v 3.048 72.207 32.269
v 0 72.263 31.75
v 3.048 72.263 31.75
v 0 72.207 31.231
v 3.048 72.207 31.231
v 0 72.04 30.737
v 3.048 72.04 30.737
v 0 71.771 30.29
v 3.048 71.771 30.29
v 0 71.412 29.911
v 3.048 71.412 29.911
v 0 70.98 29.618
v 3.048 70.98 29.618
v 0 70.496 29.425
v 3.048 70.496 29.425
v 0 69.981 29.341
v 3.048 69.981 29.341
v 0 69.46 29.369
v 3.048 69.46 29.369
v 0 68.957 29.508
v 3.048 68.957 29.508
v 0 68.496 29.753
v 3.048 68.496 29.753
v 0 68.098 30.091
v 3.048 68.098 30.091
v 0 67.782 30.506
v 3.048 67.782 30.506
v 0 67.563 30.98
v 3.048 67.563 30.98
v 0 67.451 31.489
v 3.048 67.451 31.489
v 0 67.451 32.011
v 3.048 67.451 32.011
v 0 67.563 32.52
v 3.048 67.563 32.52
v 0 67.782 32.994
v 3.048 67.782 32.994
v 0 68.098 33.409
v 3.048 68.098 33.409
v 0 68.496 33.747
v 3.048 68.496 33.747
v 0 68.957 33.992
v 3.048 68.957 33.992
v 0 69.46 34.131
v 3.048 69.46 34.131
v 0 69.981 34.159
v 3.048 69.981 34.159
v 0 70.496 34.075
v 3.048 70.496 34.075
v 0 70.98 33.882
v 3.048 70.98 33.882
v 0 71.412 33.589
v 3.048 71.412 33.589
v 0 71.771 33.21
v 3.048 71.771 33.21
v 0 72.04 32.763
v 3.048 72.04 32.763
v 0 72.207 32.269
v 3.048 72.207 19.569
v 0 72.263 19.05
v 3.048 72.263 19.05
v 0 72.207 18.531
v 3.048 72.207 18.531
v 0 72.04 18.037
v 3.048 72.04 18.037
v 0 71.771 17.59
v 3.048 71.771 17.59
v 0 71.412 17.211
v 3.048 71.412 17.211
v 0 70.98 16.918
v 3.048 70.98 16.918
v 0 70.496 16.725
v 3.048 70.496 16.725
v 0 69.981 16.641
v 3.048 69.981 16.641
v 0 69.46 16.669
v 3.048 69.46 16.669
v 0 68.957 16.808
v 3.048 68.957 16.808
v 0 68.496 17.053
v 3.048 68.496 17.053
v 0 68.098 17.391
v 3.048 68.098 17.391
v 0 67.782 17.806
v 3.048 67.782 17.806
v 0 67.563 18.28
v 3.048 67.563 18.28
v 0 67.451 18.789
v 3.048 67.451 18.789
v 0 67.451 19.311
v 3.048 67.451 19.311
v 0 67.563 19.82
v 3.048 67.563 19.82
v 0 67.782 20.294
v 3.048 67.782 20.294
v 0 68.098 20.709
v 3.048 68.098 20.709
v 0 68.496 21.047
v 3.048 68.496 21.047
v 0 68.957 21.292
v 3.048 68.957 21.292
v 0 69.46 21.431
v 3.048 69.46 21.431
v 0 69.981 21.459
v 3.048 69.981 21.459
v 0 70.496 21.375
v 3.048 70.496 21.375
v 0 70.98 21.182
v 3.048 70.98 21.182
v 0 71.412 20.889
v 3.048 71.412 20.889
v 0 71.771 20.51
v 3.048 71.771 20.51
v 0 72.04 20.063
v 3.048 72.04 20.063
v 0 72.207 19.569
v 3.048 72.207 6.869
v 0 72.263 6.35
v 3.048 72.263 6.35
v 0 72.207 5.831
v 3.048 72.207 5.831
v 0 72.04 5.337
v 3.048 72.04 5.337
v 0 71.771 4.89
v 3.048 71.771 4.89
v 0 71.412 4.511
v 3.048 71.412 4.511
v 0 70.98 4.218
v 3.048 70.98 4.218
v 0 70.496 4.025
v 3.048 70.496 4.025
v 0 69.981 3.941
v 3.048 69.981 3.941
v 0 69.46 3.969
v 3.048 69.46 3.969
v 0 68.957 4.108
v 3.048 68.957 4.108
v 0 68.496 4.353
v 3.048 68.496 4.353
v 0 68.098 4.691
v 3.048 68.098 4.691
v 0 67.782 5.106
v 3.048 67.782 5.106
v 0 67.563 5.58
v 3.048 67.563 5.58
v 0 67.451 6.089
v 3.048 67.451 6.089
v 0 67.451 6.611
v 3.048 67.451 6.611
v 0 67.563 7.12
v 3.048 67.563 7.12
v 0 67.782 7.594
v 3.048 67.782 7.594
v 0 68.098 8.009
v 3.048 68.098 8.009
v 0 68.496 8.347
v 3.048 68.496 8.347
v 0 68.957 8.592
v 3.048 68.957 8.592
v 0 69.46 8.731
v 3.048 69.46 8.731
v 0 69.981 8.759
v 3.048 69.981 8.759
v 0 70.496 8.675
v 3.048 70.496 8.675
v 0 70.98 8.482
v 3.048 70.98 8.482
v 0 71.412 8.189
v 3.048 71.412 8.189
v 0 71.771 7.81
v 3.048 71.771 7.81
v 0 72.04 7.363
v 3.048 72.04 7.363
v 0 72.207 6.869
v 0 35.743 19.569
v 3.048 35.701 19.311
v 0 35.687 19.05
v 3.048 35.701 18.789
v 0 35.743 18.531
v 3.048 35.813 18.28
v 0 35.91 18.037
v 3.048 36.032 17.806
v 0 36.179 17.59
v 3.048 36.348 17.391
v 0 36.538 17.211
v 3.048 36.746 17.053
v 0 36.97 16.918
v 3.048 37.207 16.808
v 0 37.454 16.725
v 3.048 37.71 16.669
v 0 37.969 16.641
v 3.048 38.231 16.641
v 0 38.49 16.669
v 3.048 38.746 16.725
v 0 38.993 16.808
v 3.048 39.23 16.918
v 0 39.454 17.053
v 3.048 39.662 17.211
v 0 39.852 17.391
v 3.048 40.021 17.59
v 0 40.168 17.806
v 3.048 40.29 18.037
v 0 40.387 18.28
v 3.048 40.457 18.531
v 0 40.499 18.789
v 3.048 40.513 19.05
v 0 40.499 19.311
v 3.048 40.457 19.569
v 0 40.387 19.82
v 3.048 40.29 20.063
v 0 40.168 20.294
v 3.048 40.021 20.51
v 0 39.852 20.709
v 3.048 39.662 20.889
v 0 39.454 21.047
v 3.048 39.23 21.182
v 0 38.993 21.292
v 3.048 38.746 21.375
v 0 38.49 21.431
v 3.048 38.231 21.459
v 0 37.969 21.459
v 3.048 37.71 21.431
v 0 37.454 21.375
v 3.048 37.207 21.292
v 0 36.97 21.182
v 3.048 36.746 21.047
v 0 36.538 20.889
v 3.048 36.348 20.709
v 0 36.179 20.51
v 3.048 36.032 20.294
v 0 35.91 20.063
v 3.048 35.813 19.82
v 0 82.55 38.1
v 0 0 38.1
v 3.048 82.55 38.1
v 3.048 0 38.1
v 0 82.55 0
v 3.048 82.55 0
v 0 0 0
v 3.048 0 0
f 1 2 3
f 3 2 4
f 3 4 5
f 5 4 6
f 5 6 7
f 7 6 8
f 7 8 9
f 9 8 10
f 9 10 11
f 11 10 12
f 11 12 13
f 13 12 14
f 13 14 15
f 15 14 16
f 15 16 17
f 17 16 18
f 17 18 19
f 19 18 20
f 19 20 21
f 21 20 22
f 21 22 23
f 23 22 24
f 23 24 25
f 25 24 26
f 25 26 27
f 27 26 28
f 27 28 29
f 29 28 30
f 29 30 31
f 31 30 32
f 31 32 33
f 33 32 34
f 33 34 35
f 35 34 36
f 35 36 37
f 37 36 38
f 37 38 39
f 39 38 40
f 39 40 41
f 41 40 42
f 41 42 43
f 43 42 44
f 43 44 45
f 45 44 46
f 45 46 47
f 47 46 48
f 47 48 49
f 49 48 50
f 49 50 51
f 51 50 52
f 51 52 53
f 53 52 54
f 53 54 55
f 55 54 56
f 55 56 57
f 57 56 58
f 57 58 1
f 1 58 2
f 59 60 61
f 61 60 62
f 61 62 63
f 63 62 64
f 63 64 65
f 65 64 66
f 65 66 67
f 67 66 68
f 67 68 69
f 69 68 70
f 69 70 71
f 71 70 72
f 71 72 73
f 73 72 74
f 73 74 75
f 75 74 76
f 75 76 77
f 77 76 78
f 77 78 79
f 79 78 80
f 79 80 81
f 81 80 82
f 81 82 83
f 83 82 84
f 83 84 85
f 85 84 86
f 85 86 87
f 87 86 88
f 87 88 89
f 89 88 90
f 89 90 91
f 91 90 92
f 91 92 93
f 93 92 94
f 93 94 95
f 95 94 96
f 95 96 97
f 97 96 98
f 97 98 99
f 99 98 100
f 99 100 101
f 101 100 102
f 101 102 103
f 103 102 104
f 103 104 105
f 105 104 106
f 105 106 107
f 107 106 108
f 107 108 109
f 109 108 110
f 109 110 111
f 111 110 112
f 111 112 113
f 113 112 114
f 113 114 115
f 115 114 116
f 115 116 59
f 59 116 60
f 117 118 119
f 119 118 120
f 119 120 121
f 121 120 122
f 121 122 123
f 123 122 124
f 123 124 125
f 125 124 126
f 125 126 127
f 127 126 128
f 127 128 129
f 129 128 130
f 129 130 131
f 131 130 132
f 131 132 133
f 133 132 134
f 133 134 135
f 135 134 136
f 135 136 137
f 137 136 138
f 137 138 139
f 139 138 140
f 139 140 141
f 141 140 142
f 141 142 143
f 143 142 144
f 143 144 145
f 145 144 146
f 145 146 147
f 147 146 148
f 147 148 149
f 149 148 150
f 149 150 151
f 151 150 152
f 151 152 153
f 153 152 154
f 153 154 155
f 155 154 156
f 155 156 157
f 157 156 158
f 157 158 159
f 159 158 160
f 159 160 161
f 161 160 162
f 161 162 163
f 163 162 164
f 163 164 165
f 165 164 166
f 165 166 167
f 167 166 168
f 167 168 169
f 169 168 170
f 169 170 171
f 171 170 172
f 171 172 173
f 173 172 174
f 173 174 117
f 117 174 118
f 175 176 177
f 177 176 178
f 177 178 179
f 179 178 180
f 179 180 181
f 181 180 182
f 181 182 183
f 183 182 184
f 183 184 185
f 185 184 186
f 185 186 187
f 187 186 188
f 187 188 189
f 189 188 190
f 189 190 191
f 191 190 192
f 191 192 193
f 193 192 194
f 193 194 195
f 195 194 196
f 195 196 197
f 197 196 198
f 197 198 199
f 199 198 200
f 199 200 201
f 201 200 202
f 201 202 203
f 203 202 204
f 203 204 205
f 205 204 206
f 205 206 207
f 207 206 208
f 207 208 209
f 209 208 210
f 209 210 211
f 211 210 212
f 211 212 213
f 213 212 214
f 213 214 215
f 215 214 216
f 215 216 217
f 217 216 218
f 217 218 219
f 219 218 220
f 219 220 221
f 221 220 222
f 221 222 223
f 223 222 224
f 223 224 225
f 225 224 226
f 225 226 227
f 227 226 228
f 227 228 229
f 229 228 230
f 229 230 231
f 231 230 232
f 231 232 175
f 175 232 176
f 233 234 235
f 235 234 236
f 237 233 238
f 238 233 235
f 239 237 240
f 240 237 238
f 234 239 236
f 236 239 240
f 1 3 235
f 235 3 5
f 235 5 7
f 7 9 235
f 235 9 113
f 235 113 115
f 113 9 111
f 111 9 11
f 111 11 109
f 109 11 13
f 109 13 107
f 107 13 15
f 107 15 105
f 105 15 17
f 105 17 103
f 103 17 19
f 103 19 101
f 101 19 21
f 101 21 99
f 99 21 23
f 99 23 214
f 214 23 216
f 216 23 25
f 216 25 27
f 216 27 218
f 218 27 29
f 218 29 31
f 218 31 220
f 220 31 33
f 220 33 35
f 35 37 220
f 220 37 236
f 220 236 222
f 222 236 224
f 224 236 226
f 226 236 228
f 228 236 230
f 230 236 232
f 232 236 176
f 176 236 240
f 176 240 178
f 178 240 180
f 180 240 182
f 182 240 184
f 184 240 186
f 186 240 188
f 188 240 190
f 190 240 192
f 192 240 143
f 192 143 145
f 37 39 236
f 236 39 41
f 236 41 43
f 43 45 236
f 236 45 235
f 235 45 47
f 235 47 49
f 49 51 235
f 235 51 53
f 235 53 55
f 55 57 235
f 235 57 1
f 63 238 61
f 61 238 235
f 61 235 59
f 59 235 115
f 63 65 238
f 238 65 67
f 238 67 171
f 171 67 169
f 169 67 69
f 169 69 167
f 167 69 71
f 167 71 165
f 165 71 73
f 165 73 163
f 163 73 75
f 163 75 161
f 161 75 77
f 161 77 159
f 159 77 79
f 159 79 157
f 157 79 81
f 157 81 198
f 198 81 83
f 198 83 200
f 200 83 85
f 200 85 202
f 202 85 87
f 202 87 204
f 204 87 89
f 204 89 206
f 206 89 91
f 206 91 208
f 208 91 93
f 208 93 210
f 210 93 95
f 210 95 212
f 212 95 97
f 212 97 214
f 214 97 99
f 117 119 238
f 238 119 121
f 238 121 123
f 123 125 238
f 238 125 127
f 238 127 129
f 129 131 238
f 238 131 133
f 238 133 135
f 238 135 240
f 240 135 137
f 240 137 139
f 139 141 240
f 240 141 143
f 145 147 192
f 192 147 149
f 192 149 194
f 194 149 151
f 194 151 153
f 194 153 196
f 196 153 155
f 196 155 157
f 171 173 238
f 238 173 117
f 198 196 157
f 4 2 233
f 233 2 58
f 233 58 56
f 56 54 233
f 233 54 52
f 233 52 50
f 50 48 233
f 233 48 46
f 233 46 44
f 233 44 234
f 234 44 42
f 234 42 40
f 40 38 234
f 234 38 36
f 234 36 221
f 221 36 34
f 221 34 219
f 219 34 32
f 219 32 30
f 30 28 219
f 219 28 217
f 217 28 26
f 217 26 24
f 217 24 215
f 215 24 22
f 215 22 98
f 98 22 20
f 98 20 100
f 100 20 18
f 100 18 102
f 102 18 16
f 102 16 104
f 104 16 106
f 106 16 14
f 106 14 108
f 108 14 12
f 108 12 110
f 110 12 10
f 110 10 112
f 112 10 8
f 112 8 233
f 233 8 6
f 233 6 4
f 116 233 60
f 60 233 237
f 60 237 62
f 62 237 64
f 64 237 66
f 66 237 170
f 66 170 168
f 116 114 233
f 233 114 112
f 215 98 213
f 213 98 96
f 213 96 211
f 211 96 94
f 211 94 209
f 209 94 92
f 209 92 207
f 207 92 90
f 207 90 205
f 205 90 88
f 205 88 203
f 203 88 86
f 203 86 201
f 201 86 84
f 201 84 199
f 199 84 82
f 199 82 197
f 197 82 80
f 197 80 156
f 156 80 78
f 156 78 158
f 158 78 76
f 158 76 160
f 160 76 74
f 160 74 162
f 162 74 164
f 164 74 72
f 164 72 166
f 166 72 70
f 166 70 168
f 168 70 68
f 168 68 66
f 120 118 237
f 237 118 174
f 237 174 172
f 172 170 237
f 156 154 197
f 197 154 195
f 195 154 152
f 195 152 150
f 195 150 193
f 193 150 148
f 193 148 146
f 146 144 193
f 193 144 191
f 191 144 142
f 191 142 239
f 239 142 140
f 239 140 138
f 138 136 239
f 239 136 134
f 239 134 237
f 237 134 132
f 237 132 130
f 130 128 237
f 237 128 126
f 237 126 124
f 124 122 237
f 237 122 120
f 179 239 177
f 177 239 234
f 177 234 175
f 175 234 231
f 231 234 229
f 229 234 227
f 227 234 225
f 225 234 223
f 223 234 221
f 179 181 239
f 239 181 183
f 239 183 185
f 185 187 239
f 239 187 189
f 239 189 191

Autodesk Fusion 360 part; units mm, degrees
sketch "Sketch1" plane through (0, 0, 0) normal (1, 0, 0) x (0, 1, 0)
  line L0 (0, 0) -> (82.55, 0)
  line L1 (82.55, 0) -> (82.55, 38.1)
  line L2 (82.55, 38.1) -> (0, 38.1)
  line L3 (0, 38.1) -> (0, 0)
  dimension "d1" = 82.55
  dimension "d2" = 38.1
extrude "Extrude1" add sketch "Sketch1" along normal blind 3.048
sketch "Sketch2" plane through (3.048, 0, 0) normal (1, 0, 0) x (0, 1, 0)
  line L0 (0, 38.1) -> (0, 0)
  line L1 (0, 0) -> (82.55, 0)
  line L2 (82.55, 0) -> (82.55, 38.1)
  line L3 (82.55, 38.1) -> (0, 38.1)
  line L4 (0, 0) -> (38.1, 0)
  line L5 (38.1, 0) -> (38.1, 19.05)
  line L6 (38.1, 19.05) -> (0, 19.05)
  line L7 (0, 19.05) -> (0, 0)
  dimension "d5" = 38.1
  dimension "d6" = 19.05
hole "Hole1" at (3.048, 38.1, 19.05) direction (-1, 0, 0) diameter 4.826 depth 9.652 tip angle 118
sketch "Sketch3" plane through (3.048, 0, 0) normal (1, 0, 0) x (0, 1, 0)
  circle A0 centre (38.1, 19.05) radius 2.413
  line L0 (0, 38.1) -> (0, 0)
  line L1 (0, 0) -> (82.55, 0)
  line L2 (82.55, 0) -> (82.55, 38.1)
  line L3 (82.55, 38.1) -> (0, 38.1)
  line L4 (82.55, 0) -> (69.85, 0)
  line L5 (69.85, 0) -> (69.85, 6.35)
  line L6 (69.85, 6.35) -> (82.55, 6.35)
  line L7 (82.55, 6.35) -> (82.55, 0)
  dimension "d10" = 12.7
  dimension "d11" = 6.35
hole "Hole2" at (3.048, 69.85, 6.35) direction (-1, 0, 0) diameter 4.826 depth 3.048 tip angle 118
sketch "Sketch4" plane through (3.048, 0, 0) normal (1, 0, 0) x (0, 1, 0)
  circle A0 centre (69.85, 6.35) radius 2.413
  circle A1 centre (38.1, 19.05) radius 2.413
  line L0 (0, 38.1) -> (0, 0)
  line L1 (0, 0) -> (82.55, 0)
  line L2 (82.55, 0) -> (82.55, 38.1)
  line L3 (82.55, 38.1) -> (0, 38.1)
  line L4 (82.55, 0) -> (69.85, 0)
  line L5 (69.85, 0) -> (69.85, 19.05)
  line L6 (69.85, 19.05) -> (82.55, 19.05)
  line L7 (82.55, 19.05) -> (82.55, 0)
  dimension "d15" = 12.7
  dimension "d16" = 19.05
hole "Hole3" at (3.048, 69.85, 19.05) direction (-1, 0, 0) diameter 4.826 depth 3.048 tip angle 118
sketch "Sketch5" plane through (3.048, 0, 0) normal (1, 0, 0) x (0, 1, 0)
  circle A0 centre (69.85, 19.05) radius 2.413
  circle A1 centre (69.85, 6.35) radius 2.413
  circle A2 centre (38.1, 19.05) radius 2.413
  line L0 (0, 38.1) -> (0, 0)
  line L1 (0, 0) -> (82.55, 0)
  line L2 (82.55, 0) -> (82.55, 38.1)
  line L3 (82.55, 38.1) -> (0, 38.1)
  line L4 (82.55, 0) -> (69.85, 0)
  line L5 (69.85, 0) -> (69.85, 31.75)
  line L6 (69.85, 31.75) -> (82.55, 31.75)
  line L7 (82.55, 31.75) -> (82.55, 0)
  dimension "d20" = 12.7
  dimension "d21" = 31.75
hole "Hole4" at (3.048, 69.85, 31.75) direction (-1, 0, 0) diameter 4.826 depth 3.048 tip angle 118
